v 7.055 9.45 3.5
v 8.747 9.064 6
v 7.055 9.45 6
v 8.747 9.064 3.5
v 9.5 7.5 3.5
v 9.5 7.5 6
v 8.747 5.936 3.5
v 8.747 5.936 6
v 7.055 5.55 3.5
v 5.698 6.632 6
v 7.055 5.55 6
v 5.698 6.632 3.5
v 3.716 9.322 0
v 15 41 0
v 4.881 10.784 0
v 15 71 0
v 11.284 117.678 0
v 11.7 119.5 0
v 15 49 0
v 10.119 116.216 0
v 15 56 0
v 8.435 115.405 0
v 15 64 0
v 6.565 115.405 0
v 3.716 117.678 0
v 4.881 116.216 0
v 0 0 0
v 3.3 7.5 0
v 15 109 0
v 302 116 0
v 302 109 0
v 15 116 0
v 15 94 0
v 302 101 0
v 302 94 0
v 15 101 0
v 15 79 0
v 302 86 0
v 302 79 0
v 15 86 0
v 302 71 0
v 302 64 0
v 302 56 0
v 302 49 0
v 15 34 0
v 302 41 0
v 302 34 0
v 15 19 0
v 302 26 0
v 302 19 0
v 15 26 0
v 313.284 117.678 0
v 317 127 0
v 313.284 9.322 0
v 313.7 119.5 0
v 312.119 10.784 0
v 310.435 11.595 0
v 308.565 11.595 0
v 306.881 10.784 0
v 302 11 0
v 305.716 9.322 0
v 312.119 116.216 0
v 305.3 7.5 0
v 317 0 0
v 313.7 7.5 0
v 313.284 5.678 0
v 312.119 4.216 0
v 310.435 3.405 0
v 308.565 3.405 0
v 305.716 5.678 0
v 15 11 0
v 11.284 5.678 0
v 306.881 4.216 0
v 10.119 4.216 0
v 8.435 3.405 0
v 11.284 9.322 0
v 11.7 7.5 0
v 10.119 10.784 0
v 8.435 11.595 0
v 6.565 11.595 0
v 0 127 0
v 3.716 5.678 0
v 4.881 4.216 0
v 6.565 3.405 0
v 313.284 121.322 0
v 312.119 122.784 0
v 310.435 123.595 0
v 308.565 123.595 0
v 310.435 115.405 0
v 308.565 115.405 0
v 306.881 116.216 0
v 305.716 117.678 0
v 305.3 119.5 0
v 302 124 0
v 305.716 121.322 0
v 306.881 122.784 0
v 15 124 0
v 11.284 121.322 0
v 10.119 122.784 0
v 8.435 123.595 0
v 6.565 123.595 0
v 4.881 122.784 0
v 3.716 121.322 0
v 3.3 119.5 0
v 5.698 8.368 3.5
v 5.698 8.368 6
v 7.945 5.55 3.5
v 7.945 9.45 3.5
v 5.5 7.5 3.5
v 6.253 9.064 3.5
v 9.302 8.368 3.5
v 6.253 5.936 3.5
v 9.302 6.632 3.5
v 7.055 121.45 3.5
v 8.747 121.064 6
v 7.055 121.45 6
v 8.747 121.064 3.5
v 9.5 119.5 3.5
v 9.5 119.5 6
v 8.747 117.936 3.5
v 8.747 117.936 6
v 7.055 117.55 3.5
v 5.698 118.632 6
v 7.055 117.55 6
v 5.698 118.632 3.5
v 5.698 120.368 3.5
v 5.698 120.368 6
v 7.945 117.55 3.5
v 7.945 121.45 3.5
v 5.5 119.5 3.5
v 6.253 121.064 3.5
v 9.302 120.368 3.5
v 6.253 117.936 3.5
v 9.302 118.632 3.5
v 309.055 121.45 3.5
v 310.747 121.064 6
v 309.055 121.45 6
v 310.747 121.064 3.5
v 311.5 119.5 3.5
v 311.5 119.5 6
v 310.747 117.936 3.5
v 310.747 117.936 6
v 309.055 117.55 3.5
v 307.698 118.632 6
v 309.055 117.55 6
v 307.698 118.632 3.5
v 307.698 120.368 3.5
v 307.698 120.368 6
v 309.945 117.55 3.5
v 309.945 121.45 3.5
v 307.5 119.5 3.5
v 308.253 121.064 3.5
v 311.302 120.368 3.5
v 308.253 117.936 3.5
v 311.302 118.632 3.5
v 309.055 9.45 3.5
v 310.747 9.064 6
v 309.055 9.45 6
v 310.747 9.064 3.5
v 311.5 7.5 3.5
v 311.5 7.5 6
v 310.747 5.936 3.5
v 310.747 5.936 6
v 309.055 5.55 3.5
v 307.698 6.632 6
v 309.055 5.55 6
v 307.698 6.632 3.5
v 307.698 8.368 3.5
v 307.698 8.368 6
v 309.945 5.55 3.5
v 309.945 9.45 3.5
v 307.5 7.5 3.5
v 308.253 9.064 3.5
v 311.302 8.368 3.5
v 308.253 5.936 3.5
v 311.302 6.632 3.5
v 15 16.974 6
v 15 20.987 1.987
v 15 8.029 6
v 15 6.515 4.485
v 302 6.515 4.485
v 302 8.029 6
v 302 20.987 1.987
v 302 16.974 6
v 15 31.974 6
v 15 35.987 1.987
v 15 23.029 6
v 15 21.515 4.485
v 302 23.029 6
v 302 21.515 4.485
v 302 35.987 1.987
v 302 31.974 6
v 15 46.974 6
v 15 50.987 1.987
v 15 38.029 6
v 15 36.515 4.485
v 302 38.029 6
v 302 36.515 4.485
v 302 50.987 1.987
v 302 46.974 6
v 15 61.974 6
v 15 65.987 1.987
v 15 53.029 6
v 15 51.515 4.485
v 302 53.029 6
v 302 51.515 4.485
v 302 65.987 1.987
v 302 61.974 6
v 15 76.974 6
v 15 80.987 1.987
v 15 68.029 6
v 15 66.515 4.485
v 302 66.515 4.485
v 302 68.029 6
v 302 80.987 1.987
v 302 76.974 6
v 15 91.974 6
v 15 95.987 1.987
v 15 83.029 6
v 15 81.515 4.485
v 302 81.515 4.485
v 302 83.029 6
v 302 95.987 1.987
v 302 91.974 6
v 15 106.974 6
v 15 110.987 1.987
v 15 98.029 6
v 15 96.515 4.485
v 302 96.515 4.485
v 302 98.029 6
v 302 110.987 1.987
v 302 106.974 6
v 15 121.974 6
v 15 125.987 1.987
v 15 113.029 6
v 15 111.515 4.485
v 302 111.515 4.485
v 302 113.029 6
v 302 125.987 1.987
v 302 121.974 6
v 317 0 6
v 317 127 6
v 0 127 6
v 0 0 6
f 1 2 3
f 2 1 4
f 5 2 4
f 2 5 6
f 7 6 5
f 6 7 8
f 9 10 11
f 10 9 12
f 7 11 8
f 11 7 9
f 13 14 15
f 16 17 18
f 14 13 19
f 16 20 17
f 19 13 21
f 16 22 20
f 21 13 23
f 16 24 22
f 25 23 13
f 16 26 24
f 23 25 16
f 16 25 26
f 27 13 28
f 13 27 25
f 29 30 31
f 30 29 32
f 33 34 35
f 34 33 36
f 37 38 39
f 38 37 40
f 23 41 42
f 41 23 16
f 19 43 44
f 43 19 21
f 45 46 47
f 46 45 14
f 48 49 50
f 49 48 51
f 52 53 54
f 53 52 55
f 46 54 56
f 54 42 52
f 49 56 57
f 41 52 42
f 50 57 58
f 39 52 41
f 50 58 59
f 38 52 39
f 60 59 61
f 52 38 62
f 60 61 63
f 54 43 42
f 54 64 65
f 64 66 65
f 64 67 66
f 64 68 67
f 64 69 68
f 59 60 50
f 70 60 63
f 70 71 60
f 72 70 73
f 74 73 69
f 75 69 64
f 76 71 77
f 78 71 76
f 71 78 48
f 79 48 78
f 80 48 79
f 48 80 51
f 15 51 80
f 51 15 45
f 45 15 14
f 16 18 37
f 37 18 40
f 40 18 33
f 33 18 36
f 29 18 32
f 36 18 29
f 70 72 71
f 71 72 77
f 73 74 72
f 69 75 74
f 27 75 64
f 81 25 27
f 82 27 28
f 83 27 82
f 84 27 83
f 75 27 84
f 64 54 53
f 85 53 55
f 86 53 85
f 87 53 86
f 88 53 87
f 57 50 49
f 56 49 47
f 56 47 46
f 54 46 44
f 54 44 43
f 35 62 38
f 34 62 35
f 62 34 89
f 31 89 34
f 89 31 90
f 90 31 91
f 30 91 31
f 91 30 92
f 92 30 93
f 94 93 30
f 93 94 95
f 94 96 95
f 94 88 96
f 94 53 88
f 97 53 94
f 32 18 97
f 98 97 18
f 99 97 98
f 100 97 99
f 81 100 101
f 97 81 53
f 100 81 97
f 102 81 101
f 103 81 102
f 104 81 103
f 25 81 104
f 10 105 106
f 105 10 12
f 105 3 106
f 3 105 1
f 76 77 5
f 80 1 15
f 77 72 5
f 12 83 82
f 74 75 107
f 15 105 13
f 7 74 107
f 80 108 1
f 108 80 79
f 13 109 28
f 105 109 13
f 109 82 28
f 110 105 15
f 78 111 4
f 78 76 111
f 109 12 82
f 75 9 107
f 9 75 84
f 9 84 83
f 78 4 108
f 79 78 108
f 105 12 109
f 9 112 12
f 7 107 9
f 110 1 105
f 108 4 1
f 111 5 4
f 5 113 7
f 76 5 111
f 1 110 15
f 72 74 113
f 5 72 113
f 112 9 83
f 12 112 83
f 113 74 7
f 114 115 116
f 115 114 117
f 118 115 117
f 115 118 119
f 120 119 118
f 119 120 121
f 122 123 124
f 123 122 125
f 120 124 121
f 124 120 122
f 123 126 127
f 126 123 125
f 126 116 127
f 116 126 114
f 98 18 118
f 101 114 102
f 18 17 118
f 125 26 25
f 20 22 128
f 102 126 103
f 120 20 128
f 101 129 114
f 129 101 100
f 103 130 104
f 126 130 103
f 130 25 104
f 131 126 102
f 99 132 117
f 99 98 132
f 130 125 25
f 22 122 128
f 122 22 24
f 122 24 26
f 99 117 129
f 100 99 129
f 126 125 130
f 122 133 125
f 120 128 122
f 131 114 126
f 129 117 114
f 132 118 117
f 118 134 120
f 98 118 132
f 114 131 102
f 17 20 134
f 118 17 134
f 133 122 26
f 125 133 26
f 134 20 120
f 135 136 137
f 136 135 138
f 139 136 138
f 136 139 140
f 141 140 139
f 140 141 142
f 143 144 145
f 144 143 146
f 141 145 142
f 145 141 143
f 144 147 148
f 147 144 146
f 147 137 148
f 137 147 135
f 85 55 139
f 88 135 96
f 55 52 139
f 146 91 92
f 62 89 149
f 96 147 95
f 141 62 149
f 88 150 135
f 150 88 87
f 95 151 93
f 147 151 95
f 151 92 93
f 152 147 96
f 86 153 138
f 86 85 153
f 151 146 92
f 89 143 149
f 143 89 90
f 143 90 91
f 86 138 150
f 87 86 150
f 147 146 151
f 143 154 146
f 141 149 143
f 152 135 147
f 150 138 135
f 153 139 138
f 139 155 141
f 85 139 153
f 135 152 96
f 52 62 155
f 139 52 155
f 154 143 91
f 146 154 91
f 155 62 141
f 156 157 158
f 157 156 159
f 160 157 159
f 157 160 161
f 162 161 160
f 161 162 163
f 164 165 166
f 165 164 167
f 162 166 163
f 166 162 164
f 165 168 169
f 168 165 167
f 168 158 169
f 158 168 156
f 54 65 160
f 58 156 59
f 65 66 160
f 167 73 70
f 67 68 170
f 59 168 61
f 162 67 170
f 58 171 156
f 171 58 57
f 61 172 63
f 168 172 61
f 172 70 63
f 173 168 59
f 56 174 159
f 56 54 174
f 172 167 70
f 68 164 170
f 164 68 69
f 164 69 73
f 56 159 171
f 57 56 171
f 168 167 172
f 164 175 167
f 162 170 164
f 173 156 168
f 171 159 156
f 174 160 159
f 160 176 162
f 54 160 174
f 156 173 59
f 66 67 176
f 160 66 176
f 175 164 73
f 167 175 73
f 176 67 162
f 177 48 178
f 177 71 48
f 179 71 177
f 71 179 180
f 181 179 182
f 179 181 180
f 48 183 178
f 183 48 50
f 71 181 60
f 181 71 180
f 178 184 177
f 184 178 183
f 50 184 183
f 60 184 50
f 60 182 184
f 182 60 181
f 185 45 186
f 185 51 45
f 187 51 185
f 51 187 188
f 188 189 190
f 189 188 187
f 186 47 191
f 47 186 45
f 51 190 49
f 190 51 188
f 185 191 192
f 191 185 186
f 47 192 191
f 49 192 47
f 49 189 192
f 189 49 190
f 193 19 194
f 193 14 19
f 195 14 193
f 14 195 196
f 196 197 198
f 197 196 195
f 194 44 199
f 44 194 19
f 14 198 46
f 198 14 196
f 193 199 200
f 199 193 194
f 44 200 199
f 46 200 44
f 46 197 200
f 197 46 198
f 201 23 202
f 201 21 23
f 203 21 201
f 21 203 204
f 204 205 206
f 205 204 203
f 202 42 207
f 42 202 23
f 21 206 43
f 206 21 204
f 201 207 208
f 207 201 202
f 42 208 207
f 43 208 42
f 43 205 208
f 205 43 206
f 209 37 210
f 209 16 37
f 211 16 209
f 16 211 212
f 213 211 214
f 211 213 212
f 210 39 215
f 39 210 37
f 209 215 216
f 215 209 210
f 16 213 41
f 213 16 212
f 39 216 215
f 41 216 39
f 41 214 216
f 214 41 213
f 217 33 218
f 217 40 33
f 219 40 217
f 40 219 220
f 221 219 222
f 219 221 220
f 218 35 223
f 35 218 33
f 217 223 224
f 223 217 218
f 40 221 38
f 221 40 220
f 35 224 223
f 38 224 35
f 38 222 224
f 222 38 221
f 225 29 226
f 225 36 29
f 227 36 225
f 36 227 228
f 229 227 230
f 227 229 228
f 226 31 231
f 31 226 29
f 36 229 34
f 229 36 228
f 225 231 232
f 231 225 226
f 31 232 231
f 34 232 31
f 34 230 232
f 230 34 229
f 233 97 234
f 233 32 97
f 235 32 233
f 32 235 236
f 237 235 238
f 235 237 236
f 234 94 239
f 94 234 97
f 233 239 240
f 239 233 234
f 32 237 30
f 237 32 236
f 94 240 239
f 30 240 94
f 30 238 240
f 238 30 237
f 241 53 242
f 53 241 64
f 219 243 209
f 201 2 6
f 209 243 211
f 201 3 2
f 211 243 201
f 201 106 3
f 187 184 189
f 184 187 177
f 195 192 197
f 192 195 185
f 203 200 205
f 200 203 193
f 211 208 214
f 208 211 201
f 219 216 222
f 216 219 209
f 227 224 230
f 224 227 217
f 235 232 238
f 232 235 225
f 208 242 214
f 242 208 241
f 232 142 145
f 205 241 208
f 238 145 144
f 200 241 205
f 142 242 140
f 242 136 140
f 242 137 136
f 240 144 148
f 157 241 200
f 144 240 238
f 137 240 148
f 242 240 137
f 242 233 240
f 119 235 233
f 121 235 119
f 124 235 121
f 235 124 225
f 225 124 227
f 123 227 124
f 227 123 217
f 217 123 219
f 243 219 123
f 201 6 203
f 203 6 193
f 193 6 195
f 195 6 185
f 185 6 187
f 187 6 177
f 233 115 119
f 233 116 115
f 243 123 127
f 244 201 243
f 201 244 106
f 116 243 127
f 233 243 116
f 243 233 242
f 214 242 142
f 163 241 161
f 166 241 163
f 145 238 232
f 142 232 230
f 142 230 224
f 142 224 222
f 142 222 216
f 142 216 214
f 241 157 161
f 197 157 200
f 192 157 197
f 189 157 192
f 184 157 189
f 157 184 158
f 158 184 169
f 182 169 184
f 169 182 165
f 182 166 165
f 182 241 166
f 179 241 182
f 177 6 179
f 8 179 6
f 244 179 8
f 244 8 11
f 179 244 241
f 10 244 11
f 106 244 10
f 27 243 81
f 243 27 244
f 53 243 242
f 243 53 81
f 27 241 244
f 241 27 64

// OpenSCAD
/*
    Original grate: 25"wx5"hx1/4"d
    
    Converted to mm: 635x127x6.35
*/

WIDTH = 317; //635;
DEPTH = 127;
HEIGHT = 6;

FRAME_WIDTH = 15;
//AIR_HOLE_SIZE = 10;

MOUNTING_SCREW_HEAD_DIAMETER = 8.4;
MOUNTING_SCREW_SHAFT_DIAMETER = 4;
MOUNTING_SCREW_TAPER_LENGTH = 3.5;
MOUNTING_SCREW_LENGTH = 30;

module screw_hole(){
    #cylinder(r=(MOUNTING_SCREW_SHAFT_DIAMETER)/2,h=MOUNTING_SCREW_LENGTH);
    #cylinder(r1=MOUNTING_SCREW_HEAD_DIAMETER/2,r2=MOUNTING_SCREW_SHAFT_DIAMETER/2,h=MOUNTING_SCREW_TAPER_LENGTH);
}

difference(){
    
    // Base panel
    cube([WIDTH, DEPTH, HEIGHT]);
    
    // Mounting holes
    translate([FRAME_WIDTH/2,FRAME_WIDTH/2,0]){
        screw_hole();
    }
    translate([FRAME_WIDTH/2,DEPTH-FRAME_WIDTH/2,0]){
        screw_hole();
    }
    translate([WIDTH-FRAME_WIDTH/2,DEPTH-FRAME_WIDTH/2,0]){
        screw_hole();
    }
    translate([WIDTH-FRAME_WIDTH/2,FRAME_WIDTH/2,0]){
        screw_hole();
    }
    
    // Air holes
    for(i=[1:8]){
        translate([FRAME_WIDTH, i*FRAME_WIDTH, -4]){
            rotate([45,0,0]){
                #cube([WIDTH/2-FRAME_WIDTH,DEPTH/15,HEIGHT*2]);
            }
        }
        
        translate([WIDTH-(WIDTH/2-FRAME_WIDTH)-FRAME_WIDTH, i*FRAME_WIDTH, -4]){
            rotate([45,0,0]){
                #cube([WIDTH/2-FRAME_WIDTH,DEPTH/15,HEIGHT*2]);
            }
        }
    }
    
    /*
    ROWS = (DEPTH-(FRAME_WIDTH/2)) / AIR_HOLE_SIZE;
    COLUMNS = (WIDTH-(FRAME_WIDTH/2)) / AIR_HOLE_SIZE;
    translate([(WIDTH+(FRAME_WIDTH/2))-(COLUMNS*AIR_HOLE_SIZE),(DEPTH+(FRAME_WIDTH/2))-(ROWS*AIR_HOLE_SIZE),-1]){
    //translate([FRAME_WIDTH+(AIR_HOLE_SIZE/2),FRAME_WIDTH+(AIR_HOLE_SIZE/2),-1]){
        for(y=[0:ROWS-1]){
            for (x=[0:COLUMNS-1]){
                translate([x*(AIR_HOLE_SIZE*1.1),y*(AIR_HOLE_SIZE*1.1),0]){
                    #cylinder(r=AIR_HOLE_SIZE/2,h=HEIGHT+2);
                }
            }
        }
    }
    */
}
